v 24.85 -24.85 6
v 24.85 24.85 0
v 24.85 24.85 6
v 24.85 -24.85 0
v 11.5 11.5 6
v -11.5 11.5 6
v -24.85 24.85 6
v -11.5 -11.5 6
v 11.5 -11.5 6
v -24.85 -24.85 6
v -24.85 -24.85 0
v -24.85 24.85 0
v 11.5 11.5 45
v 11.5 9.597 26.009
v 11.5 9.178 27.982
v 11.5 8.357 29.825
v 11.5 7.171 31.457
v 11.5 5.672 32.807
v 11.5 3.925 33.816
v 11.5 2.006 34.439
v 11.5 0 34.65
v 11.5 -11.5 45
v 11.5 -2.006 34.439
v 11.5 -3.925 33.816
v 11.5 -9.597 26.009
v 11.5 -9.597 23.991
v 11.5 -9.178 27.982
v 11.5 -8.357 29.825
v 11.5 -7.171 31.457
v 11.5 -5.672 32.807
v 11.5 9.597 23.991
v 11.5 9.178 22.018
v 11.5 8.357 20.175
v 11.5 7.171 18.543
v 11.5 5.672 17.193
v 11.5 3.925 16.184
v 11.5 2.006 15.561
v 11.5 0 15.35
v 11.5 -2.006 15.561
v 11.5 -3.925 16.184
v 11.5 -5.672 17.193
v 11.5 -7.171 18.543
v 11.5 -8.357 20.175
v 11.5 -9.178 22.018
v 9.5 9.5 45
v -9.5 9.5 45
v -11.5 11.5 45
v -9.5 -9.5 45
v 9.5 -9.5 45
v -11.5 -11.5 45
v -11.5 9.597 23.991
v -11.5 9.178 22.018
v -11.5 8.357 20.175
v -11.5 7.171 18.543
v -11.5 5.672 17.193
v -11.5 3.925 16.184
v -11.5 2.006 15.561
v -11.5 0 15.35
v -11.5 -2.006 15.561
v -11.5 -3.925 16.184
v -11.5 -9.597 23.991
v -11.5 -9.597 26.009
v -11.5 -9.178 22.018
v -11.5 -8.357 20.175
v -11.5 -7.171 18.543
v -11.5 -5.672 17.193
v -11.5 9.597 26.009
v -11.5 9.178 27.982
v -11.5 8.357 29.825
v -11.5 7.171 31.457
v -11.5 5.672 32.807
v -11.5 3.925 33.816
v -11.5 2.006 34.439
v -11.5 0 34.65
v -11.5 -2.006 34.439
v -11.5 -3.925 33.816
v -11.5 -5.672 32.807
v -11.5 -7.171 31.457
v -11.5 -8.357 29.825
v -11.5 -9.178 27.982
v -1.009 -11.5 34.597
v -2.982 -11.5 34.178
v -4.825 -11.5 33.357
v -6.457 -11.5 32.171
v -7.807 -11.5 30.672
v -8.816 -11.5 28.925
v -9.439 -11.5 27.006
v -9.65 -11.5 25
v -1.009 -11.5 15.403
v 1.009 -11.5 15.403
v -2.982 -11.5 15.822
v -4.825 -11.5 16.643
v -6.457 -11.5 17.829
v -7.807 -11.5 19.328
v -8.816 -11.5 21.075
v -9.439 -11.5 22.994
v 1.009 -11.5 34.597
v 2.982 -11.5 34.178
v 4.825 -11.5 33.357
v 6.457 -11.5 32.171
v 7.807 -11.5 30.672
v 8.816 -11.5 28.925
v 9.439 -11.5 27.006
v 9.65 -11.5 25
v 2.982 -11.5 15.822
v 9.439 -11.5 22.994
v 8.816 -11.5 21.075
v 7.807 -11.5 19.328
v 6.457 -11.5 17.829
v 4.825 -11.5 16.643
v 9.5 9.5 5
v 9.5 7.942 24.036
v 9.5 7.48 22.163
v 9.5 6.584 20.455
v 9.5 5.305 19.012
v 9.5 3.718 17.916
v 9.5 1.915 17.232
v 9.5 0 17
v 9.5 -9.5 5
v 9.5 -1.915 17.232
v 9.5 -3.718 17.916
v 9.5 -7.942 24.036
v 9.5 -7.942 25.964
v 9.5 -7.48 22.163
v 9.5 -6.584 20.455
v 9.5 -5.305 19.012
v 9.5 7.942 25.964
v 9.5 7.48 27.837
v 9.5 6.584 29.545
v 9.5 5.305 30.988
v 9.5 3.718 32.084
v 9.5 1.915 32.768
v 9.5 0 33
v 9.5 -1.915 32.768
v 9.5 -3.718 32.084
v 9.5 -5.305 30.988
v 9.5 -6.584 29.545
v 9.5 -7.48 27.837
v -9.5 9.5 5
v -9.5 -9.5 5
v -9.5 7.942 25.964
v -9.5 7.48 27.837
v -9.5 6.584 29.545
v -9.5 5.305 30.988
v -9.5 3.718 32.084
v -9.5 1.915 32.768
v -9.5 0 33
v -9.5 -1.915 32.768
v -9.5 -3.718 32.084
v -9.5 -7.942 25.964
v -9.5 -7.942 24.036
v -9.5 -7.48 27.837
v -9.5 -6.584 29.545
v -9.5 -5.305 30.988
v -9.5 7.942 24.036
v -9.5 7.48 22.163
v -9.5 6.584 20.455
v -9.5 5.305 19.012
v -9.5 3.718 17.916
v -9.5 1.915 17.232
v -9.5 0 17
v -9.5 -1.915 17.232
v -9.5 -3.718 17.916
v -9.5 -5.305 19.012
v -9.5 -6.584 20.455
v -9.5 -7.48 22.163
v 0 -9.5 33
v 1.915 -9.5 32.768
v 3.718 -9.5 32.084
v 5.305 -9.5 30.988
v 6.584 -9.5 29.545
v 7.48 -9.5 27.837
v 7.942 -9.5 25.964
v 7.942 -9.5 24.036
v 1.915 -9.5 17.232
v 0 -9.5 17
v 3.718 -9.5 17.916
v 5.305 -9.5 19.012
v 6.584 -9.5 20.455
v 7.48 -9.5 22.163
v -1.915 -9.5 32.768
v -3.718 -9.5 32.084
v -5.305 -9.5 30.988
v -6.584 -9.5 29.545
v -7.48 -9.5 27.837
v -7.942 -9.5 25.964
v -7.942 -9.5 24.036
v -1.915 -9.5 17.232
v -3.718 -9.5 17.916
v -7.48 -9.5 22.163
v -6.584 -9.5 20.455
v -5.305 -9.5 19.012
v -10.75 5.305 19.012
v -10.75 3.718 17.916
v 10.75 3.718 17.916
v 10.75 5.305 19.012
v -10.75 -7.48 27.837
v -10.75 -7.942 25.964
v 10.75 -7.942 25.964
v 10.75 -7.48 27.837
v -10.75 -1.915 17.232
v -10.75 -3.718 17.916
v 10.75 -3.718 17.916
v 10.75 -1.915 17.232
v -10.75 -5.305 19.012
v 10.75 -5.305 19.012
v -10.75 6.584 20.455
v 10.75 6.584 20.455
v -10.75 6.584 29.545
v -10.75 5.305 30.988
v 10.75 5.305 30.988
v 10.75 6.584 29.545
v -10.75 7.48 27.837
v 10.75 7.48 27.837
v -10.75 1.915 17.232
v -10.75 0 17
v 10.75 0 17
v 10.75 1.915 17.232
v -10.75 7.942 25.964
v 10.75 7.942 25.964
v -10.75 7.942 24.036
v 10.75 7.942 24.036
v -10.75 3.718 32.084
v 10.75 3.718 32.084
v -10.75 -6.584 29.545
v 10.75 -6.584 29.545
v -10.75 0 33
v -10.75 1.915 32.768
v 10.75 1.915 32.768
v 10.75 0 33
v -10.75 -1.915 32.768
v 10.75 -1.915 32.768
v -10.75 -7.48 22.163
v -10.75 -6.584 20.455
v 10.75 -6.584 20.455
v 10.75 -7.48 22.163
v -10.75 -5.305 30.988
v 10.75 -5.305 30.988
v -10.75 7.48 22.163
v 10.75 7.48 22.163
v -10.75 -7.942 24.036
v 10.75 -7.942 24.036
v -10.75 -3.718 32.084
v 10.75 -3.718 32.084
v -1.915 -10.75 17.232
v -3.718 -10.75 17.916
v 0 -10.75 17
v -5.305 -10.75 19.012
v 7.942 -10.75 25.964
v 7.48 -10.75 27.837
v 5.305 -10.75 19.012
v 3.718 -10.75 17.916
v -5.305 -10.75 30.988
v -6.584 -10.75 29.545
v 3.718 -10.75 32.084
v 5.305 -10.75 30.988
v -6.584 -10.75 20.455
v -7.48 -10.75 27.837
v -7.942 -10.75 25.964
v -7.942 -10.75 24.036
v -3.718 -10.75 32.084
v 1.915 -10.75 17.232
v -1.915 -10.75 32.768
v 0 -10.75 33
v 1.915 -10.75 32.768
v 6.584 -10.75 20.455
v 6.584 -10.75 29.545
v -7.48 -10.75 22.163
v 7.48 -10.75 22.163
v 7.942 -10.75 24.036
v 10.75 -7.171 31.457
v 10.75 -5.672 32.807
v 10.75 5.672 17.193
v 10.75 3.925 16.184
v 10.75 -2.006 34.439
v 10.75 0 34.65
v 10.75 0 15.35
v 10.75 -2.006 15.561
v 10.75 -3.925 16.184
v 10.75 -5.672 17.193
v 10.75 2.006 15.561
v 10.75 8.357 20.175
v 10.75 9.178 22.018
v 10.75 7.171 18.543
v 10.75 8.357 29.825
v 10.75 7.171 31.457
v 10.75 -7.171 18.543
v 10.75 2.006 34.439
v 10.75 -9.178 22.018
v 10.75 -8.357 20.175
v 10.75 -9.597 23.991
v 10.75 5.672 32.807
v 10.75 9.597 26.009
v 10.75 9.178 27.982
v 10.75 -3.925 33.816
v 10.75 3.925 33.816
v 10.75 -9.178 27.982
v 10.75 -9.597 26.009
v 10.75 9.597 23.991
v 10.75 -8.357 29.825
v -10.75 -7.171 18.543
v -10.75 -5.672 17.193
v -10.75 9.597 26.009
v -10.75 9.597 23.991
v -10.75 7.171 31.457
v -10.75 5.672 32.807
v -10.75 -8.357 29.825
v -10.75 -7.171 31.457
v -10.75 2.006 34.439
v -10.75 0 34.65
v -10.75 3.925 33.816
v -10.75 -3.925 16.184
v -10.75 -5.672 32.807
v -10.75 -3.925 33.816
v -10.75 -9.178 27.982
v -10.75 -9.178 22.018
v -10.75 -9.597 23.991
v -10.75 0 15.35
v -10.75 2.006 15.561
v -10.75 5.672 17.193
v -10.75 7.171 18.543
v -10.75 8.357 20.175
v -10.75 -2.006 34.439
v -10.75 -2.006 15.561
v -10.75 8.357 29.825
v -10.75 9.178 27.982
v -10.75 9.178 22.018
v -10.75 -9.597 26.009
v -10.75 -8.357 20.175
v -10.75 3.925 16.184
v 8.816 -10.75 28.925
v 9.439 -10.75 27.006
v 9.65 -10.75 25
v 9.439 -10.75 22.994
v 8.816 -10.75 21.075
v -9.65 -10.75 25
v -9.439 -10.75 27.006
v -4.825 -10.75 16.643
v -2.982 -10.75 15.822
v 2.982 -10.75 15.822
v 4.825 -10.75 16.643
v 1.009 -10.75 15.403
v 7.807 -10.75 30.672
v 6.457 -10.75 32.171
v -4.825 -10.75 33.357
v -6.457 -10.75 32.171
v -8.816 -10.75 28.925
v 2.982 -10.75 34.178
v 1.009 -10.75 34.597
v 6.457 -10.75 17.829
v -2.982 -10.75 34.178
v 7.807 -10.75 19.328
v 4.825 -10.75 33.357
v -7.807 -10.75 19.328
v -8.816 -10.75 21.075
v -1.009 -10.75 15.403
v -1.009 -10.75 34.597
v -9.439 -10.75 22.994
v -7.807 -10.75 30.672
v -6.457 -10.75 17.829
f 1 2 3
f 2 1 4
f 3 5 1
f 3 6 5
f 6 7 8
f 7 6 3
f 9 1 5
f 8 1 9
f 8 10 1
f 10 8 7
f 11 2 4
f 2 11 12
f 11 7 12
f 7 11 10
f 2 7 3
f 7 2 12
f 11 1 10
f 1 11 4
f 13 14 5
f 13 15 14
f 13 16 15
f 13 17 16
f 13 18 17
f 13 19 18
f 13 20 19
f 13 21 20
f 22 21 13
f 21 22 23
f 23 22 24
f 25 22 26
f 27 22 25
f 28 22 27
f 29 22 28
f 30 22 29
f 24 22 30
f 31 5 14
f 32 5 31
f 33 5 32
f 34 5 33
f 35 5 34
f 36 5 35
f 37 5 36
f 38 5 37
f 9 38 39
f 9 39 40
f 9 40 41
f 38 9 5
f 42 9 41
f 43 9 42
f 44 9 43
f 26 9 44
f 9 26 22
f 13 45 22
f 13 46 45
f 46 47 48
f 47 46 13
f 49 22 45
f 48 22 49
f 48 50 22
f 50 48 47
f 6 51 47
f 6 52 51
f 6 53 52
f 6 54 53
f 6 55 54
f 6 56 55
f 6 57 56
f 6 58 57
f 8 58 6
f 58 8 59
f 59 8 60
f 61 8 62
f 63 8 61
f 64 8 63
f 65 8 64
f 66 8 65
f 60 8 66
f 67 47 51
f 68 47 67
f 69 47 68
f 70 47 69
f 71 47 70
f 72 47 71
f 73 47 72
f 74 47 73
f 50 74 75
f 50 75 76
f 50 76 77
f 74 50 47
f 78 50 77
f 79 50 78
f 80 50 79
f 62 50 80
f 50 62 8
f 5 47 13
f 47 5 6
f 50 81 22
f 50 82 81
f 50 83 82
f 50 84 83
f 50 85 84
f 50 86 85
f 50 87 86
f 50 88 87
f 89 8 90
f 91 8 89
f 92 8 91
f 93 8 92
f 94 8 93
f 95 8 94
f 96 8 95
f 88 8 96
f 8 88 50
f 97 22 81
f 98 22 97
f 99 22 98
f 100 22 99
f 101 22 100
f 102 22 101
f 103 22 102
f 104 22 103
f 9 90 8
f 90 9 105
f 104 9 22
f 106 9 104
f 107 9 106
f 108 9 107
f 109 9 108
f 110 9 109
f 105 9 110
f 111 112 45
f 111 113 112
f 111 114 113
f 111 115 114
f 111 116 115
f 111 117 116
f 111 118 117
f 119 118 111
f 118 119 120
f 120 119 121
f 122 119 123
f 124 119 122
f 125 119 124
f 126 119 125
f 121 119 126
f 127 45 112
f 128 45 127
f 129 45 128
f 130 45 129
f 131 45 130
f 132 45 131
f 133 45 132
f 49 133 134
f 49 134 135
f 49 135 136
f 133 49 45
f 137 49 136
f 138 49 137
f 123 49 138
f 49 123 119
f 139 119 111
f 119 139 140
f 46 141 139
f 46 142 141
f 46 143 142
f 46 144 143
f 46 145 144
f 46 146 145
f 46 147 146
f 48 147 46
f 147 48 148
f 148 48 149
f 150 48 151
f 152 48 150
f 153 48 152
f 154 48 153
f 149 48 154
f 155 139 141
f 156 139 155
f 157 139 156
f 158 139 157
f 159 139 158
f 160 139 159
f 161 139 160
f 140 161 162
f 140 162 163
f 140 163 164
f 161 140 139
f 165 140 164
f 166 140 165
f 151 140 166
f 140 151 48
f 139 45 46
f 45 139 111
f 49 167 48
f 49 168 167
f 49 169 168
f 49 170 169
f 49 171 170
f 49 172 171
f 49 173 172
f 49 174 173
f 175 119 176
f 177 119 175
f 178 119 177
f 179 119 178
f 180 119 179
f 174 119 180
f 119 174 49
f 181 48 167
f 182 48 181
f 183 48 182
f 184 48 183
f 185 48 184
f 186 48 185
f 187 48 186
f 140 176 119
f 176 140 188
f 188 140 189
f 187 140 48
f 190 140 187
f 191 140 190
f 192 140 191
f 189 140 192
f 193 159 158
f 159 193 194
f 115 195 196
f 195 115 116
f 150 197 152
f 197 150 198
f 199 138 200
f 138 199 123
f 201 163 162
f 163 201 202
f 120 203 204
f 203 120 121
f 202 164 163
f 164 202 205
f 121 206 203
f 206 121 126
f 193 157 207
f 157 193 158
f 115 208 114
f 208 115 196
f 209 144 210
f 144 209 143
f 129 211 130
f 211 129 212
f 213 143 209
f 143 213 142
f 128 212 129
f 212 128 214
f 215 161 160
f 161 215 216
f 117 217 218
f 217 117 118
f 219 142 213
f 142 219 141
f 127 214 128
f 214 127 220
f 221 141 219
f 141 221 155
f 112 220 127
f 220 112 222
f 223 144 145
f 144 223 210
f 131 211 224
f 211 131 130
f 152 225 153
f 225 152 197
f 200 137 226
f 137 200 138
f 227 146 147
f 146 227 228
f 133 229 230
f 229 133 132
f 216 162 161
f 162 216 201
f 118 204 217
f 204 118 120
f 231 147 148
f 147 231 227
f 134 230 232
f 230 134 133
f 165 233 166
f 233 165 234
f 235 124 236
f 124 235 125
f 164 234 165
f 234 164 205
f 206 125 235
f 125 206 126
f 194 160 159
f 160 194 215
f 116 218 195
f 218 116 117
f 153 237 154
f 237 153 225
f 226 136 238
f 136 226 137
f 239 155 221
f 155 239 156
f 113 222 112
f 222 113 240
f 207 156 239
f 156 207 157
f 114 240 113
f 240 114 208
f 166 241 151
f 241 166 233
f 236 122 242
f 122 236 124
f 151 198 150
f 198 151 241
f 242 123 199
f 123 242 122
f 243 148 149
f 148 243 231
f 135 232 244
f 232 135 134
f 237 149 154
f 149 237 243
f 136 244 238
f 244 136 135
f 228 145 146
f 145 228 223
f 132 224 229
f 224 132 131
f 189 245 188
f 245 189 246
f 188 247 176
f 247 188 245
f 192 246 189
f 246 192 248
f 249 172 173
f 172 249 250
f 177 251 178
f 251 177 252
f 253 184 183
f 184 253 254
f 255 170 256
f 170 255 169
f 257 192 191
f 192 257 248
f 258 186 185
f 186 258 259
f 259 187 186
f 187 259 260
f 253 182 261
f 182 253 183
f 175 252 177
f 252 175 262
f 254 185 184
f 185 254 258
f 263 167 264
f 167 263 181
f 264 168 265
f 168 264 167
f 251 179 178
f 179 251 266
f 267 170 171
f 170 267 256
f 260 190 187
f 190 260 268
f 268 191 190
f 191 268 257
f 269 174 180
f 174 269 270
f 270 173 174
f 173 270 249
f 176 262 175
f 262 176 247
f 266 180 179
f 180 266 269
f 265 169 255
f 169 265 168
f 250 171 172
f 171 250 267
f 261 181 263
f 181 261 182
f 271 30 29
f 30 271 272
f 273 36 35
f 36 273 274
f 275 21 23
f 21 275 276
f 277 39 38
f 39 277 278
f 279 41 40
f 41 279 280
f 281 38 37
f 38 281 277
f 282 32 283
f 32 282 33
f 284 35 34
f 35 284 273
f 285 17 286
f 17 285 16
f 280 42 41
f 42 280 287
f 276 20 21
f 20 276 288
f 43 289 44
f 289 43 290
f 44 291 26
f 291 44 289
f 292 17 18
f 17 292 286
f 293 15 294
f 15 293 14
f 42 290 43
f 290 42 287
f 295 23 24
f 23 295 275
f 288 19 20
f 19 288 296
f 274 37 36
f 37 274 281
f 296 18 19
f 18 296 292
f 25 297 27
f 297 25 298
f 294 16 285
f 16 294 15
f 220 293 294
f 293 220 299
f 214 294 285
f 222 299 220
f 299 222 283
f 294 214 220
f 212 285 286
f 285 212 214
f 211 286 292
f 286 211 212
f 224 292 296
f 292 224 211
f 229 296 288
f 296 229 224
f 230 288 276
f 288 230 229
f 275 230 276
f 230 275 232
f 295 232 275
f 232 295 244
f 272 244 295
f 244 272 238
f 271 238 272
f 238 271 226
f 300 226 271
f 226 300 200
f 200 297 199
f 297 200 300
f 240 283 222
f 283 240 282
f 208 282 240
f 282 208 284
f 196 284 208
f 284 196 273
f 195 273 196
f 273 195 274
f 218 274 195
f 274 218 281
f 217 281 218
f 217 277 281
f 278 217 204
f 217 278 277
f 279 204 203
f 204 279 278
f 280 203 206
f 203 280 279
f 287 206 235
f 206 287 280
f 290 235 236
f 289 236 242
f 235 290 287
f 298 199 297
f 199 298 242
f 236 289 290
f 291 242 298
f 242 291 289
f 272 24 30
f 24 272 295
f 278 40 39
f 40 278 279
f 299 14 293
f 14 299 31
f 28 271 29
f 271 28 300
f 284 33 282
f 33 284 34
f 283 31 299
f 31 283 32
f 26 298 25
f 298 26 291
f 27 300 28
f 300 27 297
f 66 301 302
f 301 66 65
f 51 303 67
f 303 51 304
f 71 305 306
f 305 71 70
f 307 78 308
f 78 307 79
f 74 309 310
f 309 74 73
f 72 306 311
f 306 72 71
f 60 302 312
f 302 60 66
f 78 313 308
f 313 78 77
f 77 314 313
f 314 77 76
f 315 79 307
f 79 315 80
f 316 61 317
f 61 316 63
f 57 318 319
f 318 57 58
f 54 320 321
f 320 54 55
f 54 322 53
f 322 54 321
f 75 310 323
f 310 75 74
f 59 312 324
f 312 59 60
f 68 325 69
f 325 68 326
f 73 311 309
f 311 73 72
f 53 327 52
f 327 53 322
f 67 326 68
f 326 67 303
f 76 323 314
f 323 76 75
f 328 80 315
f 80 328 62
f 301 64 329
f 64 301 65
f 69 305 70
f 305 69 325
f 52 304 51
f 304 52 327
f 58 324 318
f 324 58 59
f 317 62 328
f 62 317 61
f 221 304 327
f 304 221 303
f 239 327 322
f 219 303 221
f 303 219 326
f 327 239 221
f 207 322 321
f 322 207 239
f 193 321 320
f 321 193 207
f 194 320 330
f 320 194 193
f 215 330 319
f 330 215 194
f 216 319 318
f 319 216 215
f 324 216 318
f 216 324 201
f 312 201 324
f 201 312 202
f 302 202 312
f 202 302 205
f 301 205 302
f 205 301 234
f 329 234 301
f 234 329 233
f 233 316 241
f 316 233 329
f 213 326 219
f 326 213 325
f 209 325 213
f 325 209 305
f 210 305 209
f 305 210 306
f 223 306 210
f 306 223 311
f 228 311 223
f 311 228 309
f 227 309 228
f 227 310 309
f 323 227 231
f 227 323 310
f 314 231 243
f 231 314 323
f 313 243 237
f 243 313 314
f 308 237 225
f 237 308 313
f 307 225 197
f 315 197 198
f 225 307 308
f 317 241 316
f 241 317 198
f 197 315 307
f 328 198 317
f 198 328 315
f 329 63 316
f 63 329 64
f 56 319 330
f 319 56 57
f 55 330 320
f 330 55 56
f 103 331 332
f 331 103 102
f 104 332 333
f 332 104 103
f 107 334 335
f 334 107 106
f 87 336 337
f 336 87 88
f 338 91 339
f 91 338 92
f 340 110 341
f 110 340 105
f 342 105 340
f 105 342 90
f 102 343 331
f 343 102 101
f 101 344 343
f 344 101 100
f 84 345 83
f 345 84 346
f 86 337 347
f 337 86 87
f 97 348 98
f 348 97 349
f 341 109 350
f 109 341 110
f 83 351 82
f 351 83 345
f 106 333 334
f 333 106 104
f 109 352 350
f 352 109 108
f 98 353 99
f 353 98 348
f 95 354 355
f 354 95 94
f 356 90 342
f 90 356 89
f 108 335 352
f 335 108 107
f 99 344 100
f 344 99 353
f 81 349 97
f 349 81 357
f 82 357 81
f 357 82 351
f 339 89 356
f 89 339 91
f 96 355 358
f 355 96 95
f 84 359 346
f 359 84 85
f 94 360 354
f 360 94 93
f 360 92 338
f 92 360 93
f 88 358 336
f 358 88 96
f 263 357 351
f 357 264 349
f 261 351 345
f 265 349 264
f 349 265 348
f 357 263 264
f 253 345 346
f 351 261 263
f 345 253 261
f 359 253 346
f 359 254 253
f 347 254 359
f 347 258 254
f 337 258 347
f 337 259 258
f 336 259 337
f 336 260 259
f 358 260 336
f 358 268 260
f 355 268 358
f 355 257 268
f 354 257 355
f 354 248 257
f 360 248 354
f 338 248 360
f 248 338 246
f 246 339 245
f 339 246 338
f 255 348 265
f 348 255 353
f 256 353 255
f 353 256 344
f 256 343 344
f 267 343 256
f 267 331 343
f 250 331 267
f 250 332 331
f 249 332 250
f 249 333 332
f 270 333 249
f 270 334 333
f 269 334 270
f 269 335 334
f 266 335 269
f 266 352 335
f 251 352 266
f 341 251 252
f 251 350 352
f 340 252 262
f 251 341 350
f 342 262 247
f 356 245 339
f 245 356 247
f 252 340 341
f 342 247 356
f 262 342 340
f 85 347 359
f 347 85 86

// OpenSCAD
//Sample chamber

FDM_offset = 0.15;


module SampleChamber (){
    difference(){
    union(){
        translate([0,0,6/2])
             cube([50-2*FDM_offset,50-2*FDM_offset,6], center=true);
        translate([0,0,50/2])
            cube([23,23,40], center=true);
        }
    translate([0,0,45/2+5])
        cube([19,19,45], center=true);      

    translate([0,0,25])      
    rotate([0,90,0])
        cylinder(d=16, h=40, center=true);
    translate([0,-10,25])
    rotate([0,90,90])
        cylinder(d=16, h=20, center=true);

    rotate([0,90,0])
    translate([-25,0,23/2+5-0.75])   
        cylinder(d=19+2*FDM_offset, h=10, center=true);
    rotate([0,-90,0])
    translate([25,0,23/2+5-0.75])   
        cylinder(d=19+2*FDM_offset, h=10, center=true);
    rotate([90,0,0])
    translate([0,25,23/2+5-0.75])   
        cylinder(d=19+2*FDM_offset, h=10, center=true);          
    }
}

SampleChamber();
